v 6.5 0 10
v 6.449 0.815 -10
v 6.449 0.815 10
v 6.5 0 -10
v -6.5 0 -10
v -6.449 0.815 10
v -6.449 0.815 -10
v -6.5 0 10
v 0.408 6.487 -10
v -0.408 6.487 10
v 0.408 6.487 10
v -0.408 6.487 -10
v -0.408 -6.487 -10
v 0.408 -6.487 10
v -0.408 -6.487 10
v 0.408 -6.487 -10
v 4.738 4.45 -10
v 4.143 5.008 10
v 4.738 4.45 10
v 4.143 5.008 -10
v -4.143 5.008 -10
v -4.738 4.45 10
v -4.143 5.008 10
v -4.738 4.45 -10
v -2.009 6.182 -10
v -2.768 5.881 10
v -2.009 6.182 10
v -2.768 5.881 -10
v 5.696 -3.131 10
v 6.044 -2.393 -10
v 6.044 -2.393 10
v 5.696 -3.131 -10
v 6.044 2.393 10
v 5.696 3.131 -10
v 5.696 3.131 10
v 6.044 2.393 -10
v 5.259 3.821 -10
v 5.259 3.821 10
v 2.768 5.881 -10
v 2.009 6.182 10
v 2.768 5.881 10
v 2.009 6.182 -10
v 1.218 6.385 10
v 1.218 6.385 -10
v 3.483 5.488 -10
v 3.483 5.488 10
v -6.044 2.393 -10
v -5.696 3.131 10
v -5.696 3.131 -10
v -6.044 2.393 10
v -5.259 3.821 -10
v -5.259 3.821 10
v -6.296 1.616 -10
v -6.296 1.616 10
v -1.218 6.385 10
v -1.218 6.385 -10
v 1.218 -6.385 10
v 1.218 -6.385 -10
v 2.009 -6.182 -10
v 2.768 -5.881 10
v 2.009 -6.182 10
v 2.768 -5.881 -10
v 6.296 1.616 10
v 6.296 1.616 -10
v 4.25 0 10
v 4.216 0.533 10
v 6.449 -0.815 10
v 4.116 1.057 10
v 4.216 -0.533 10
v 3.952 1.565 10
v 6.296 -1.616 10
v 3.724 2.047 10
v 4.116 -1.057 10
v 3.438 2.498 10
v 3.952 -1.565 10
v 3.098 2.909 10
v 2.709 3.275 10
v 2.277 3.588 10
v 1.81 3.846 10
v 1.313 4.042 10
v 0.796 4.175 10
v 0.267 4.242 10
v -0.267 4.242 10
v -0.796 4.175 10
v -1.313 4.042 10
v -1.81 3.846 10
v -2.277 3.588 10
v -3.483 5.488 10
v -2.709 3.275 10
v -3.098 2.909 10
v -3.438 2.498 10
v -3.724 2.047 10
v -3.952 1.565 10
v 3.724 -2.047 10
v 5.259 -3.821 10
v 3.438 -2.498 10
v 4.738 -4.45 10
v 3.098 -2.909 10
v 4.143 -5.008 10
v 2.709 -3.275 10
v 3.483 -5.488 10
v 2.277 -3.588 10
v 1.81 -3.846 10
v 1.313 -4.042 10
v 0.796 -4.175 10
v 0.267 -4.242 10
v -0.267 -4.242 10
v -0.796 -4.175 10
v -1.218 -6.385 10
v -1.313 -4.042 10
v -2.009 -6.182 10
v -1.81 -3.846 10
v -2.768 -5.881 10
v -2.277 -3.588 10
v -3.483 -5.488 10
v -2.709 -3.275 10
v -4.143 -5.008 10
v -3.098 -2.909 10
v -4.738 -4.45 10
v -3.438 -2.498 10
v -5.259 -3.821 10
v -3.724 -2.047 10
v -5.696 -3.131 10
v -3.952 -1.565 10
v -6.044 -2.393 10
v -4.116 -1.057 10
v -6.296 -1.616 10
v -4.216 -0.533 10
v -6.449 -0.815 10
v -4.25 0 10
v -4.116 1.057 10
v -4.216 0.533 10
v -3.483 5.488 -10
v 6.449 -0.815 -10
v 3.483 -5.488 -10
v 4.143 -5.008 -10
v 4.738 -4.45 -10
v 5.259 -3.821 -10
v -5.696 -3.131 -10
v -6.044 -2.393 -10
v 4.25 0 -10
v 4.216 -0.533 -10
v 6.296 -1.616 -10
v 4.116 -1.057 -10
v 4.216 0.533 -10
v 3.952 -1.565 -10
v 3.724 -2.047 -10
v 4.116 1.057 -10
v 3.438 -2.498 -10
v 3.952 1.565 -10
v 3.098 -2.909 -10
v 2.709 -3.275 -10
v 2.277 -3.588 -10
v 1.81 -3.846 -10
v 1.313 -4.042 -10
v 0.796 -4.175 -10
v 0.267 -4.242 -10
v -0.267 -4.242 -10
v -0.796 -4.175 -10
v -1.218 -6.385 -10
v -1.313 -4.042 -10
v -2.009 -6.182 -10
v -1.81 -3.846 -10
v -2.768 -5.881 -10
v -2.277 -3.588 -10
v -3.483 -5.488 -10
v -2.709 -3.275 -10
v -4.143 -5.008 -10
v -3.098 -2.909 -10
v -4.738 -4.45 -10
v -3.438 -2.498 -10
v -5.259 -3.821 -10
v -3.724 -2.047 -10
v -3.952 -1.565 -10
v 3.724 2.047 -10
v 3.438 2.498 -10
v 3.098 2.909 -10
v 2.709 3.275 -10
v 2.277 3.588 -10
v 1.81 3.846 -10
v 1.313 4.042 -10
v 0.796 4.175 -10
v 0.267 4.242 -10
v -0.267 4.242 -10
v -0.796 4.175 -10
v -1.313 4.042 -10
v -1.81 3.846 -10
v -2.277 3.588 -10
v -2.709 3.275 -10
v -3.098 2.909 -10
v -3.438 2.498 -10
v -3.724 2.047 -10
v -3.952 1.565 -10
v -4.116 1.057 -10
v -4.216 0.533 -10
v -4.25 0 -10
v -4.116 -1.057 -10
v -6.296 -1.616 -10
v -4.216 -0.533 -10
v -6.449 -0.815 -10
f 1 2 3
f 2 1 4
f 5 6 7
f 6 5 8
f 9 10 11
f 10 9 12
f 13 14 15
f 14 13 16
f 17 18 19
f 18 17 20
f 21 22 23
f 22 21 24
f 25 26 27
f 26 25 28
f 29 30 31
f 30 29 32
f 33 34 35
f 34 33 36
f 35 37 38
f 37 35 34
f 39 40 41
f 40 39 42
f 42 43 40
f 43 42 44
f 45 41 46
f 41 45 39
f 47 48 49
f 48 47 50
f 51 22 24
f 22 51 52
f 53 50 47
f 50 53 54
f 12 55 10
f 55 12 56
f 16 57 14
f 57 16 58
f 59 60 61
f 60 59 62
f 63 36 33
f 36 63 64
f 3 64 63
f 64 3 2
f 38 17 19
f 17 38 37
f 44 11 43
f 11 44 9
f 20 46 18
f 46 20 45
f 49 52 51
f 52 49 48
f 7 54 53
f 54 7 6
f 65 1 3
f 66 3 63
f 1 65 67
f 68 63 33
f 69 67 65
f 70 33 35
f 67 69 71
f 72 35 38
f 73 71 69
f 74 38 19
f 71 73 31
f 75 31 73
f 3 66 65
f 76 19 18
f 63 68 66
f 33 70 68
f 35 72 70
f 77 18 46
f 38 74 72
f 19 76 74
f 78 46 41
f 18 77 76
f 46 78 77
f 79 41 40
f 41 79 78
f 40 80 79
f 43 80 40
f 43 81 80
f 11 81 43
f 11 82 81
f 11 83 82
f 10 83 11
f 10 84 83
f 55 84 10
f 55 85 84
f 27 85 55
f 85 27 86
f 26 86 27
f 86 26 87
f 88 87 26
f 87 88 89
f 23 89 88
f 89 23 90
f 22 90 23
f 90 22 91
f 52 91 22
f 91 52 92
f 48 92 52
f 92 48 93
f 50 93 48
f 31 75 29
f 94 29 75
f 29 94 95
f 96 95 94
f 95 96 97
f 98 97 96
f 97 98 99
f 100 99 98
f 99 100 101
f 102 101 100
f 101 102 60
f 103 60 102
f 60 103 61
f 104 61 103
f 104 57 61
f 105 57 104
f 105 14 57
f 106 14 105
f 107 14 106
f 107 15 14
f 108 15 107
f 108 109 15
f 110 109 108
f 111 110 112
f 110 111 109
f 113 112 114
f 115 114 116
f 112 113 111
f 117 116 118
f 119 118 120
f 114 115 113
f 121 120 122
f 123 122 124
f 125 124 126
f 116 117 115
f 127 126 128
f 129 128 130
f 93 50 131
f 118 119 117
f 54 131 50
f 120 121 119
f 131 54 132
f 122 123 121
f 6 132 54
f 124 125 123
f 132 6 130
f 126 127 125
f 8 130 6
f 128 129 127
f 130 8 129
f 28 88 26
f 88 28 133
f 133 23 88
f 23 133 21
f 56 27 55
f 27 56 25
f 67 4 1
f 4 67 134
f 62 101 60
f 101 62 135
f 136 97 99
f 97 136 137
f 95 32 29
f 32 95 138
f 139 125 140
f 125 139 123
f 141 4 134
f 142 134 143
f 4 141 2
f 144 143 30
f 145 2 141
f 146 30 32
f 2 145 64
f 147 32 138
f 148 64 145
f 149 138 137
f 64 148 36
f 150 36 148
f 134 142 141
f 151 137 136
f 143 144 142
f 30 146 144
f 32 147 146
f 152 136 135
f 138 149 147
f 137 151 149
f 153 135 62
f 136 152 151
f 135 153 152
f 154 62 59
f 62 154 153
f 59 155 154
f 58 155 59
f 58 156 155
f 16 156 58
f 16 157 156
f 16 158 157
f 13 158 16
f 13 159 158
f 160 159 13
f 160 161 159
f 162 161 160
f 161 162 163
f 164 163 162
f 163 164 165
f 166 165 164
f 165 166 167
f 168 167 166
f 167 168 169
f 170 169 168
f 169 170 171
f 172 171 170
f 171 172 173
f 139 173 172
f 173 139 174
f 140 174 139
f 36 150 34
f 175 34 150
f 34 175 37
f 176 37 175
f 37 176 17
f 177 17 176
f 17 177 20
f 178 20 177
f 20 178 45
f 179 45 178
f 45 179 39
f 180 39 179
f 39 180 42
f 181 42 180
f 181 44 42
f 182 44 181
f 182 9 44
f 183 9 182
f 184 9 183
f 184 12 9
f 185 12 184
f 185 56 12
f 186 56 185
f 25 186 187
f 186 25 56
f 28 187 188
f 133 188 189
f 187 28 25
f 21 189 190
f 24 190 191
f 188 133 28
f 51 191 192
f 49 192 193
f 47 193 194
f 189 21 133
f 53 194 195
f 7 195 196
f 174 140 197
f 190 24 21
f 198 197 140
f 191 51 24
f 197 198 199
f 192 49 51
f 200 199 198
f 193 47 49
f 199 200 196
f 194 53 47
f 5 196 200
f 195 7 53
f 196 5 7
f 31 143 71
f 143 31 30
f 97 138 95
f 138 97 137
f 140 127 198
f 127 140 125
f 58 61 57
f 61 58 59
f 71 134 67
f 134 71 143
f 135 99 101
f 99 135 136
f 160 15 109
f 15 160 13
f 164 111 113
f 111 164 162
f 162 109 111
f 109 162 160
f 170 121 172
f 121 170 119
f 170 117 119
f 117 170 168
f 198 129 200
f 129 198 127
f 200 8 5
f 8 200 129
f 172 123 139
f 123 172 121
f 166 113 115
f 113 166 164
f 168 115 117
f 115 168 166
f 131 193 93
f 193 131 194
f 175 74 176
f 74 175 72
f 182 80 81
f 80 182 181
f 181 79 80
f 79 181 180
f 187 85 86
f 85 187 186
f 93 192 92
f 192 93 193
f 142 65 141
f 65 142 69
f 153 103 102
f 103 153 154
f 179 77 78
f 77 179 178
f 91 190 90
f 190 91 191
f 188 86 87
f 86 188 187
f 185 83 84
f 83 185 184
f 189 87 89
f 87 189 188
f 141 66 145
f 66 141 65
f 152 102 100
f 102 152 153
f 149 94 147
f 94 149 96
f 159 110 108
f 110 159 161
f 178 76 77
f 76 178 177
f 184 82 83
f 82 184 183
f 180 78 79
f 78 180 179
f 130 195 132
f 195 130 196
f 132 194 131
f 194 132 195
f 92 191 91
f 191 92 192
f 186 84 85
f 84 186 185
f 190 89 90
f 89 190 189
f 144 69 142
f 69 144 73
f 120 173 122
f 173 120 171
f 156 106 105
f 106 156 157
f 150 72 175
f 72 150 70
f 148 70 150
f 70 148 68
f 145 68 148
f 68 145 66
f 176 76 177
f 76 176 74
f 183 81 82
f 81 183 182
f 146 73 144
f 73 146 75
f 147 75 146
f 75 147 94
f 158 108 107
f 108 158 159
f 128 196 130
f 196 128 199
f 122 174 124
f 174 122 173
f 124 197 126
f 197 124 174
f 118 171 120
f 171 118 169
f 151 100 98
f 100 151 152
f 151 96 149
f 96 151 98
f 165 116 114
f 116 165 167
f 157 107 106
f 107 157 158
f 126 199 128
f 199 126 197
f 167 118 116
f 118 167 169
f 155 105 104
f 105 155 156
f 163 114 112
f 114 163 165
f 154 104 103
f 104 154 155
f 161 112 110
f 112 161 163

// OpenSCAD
$fn = 50;


difference() {
	union() {
		translate(v = [0, 0, -10.0000000000]) {
			cylinder(h = 20, r = 6.5000000000);
		}
	}
	union() {
		translate(v = [0, 0, -100.0000000000]) {
			cylinder(h = 200, r = 4.2500000000);
		}
	}
}
